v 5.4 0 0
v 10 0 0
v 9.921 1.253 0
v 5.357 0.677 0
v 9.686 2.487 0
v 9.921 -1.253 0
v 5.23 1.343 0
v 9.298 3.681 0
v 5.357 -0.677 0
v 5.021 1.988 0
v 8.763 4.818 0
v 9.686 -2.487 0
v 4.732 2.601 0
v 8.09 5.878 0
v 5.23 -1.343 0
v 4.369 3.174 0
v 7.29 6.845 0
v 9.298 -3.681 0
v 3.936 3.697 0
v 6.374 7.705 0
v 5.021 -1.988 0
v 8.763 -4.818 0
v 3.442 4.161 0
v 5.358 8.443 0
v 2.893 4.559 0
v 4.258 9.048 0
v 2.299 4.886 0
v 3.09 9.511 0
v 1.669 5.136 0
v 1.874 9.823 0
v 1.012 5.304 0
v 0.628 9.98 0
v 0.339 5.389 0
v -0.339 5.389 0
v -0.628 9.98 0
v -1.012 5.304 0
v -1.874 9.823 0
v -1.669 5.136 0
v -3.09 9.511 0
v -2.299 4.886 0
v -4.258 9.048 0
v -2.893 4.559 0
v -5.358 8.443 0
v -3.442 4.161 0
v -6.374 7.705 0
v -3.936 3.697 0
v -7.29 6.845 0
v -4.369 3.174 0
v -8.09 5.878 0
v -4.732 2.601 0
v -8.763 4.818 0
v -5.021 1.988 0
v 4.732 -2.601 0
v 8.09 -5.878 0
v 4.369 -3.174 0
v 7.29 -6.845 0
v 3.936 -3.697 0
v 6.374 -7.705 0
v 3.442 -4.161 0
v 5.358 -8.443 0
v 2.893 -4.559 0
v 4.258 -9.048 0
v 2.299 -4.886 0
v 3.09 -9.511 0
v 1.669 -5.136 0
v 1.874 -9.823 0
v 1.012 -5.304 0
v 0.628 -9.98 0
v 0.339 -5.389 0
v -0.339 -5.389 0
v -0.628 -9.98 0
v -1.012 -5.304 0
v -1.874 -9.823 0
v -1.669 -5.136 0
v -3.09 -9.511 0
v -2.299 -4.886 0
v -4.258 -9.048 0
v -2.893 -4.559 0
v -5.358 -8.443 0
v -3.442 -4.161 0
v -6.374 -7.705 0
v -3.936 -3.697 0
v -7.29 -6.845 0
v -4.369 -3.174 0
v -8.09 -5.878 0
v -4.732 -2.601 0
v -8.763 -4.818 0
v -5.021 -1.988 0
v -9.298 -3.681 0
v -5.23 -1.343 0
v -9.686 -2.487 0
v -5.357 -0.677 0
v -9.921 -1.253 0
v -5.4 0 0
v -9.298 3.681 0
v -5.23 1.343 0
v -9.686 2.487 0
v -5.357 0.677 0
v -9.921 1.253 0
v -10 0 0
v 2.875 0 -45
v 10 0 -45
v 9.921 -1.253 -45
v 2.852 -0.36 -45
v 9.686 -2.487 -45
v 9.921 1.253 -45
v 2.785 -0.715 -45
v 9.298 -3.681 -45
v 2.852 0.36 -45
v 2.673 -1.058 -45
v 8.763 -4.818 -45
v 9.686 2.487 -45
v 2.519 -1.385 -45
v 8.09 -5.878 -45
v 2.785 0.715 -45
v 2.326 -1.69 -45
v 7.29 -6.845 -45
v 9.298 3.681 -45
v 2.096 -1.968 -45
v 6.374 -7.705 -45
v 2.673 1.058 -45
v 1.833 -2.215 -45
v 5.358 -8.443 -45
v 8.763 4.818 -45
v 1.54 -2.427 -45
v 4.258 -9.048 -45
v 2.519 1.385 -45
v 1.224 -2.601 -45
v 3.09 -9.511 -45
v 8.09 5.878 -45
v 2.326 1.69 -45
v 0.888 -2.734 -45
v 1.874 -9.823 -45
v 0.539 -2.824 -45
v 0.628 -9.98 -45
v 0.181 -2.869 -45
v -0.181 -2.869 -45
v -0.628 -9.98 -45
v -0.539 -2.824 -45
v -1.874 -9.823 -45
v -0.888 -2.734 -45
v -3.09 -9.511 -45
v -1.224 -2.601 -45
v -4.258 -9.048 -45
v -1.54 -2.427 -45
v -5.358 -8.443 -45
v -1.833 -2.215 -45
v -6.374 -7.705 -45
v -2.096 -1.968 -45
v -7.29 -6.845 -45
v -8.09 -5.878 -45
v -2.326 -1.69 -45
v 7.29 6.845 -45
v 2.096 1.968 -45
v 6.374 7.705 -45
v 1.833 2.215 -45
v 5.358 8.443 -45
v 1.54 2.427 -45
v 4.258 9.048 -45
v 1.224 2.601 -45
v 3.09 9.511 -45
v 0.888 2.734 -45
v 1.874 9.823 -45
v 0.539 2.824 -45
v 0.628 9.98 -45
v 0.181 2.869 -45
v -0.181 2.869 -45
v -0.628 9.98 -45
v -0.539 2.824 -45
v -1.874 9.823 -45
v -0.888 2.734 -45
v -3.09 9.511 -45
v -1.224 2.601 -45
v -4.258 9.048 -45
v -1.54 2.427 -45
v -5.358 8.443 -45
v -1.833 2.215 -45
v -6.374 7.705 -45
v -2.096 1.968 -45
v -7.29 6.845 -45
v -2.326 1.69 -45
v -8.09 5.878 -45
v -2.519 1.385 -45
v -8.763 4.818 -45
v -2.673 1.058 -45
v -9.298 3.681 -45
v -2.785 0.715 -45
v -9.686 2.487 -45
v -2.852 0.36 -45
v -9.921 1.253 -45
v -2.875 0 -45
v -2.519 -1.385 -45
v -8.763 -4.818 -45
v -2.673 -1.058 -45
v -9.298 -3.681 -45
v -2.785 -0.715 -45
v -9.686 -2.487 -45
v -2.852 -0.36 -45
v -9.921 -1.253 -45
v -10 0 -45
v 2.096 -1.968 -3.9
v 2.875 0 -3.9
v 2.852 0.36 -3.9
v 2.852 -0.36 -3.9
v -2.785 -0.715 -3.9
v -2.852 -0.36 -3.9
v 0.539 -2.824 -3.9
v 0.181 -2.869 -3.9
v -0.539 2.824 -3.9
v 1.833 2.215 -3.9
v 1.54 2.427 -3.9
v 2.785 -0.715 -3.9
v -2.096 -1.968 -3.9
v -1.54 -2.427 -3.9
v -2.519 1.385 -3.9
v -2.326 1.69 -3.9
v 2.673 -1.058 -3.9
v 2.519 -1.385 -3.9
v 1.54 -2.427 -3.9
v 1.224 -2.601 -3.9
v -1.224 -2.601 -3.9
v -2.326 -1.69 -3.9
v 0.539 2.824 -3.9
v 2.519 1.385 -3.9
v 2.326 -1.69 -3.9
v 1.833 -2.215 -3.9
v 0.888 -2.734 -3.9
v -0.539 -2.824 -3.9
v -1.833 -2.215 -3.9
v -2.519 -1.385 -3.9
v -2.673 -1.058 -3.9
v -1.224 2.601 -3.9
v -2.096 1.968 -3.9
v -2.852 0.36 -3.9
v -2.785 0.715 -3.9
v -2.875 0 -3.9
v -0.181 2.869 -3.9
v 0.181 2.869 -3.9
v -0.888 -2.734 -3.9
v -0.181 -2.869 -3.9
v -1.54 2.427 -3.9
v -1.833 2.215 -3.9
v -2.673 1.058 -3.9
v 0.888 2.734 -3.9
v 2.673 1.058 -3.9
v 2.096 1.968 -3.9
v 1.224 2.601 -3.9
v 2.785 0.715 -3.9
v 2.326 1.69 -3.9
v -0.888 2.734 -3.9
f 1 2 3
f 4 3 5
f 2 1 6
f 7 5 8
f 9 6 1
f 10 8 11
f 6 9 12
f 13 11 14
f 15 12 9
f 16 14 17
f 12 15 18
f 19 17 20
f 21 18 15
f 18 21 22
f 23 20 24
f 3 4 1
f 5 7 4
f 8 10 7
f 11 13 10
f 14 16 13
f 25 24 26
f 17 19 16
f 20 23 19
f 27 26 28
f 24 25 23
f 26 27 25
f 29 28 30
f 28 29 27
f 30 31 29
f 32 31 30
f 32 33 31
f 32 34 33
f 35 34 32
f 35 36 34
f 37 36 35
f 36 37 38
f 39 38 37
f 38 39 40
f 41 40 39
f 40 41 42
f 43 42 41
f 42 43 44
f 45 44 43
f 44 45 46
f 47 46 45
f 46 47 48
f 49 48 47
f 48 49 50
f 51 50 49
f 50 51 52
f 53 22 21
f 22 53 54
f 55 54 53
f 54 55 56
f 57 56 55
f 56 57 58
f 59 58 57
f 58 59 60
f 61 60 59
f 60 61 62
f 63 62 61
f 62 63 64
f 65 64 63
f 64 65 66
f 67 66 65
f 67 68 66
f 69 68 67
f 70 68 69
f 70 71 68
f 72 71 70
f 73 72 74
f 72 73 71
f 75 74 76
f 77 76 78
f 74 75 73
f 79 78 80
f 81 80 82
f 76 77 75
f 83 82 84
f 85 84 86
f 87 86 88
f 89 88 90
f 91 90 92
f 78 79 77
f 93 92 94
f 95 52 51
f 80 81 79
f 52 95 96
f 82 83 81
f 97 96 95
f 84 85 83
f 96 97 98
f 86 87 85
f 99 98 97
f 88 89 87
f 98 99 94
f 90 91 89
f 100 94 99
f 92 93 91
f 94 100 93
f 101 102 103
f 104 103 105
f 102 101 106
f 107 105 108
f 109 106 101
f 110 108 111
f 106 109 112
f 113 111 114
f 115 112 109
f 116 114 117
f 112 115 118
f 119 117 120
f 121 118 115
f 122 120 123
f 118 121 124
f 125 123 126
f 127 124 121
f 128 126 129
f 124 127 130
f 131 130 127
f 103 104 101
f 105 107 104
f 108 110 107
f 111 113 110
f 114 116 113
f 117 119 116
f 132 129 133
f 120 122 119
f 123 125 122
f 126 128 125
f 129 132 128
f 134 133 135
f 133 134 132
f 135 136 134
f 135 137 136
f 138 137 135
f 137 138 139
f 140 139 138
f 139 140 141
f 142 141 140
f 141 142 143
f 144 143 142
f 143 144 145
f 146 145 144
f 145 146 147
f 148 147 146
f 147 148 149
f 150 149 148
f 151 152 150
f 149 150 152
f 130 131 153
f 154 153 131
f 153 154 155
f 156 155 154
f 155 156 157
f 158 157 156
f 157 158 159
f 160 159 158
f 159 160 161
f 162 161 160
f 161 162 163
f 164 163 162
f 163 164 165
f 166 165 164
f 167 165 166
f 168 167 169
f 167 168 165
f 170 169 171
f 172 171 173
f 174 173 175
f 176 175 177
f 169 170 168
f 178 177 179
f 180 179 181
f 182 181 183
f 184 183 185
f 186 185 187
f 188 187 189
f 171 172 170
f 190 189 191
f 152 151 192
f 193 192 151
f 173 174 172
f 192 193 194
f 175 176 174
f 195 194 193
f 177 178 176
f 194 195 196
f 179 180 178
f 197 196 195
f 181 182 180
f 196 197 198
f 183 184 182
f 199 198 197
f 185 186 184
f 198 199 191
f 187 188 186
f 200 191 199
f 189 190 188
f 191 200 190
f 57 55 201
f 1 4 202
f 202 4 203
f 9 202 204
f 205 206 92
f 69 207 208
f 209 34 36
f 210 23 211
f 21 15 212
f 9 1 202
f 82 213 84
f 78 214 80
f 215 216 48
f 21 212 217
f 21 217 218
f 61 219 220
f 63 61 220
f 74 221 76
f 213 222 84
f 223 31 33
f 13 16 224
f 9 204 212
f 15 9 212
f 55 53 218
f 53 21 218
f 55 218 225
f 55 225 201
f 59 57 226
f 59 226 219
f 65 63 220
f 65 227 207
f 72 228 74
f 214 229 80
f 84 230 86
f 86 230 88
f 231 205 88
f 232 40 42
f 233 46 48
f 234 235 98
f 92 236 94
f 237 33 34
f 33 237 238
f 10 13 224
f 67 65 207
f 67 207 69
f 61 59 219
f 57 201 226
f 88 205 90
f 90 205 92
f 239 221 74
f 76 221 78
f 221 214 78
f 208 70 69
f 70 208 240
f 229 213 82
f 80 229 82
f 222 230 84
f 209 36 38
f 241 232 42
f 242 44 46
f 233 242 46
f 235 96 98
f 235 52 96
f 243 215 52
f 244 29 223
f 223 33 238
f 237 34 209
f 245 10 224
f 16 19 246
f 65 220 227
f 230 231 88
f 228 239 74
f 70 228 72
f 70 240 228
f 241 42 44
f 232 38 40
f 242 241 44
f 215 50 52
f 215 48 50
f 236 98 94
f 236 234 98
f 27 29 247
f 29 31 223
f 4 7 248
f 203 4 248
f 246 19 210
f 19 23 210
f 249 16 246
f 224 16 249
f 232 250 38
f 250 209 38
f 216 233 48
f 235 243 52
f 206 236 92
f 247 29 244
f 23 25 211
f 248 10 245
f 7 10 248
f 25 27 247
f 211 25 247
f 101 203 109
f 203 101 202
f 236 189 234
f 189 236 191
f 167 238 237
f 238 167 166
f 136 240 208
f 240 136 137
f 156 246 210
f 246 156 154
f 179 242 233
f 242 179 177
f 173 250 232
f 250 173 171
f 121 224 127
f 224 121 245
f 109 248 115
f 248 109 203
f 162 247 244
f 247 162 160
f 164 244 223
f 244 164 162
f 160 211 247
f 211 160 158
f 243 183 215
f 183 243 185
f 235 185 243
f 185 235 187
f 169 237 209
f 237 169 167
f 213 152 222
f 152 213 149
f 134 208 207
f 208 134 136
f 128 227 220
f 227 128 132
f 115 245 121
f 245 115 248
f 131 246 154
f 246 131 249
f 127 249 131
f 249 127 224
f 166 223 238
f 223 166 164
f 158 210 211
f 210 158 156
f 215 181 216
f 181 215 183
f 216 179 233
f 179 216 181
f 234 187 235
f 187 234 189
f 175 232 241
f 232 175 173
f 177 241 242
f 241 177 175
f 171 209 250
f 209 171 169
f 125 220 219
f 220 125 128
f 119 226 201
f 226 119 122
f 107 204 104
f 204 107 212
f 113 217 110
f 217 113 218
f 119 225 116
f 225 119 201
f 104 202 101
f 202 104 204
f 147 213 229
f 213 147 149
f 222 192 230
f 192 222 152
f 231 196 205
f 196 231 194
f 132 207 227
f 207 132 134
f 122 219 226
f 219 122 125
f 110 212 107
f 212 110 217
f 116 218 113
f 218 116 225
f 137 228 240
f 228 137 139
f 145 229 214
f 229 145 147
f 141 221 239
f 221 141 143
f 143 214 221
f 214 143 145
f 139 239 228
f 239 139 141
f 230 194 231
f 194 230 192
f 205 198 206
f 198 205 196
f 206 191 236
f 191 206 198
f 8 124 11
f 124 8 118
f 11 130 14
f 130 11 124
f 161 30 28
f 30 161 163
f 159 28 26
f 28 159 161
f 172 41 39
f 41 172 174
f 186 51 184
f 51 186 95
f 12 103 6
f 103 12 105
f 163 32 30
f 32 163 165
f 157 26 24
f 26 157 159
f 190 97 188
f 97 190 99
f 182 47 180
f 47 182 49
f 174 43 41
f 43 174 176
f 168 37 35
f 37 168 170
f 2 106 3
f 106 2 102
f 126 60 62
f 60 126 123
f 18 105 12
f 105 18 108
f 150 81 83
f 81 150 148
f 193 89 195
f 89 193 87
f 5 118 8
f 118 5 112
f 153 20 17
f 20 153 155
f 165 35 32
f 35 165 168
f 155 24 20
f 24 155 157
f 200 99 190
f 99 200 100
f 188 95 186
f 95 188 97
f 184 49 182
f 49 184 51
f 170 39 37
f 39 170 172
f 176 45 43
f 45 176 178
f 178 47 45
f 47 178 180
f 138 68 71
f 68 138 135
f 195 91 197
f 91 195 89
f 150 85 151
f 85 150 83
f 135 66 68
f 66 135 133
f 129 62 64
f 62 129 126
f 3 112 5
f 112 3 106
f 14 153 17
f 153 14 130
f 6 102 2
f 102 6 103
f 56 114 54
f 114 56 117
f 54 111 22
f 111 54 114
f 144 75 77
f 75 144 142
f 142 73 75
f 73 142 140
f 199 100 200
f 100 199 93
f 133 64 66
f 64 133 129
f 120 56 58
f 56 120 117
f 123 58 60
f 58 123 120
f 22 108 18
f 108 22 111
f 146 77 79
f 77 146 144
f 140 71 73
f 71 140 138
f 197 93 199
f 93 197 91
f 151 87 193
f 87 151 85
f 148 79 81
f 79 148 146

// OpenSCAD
$fn = 50;


difference() {
	union() {
		translate(v = [0, 0, -45.0000000000]) {
			cylinder(h = 45, r = 10.0000000000);
		}
		cylinder(h = 0, r = 13.0000000000);
	}
	union() {
		translate(v = [0, 0, 0]) {
			rotate(a = [0, 0, 0]) {
				difference() {
					union() {
						#translate(v = [0, 0, -45.0000000000]) {
							cylinder(h = 45, r = 2.6000000000);
						}
						#translate(v = [0, 0, -3.9000000000]) {
							cylinder(h = 3.9000000000, r = 10.0000000000, r1 = 2.8750000000, r2 = 5.4000000000);
						}
						#translate(v = [0, 0, -45.0000000000]) {
							cylinder(h = 45, r = 2.8750000000);
						}
						#translate(v = [0, 0, -45.0000000000]) {
							cylinder(h = 45, r = 2.6000000000);
						}
					}
					union();
				}
			}
		}
	}
}
